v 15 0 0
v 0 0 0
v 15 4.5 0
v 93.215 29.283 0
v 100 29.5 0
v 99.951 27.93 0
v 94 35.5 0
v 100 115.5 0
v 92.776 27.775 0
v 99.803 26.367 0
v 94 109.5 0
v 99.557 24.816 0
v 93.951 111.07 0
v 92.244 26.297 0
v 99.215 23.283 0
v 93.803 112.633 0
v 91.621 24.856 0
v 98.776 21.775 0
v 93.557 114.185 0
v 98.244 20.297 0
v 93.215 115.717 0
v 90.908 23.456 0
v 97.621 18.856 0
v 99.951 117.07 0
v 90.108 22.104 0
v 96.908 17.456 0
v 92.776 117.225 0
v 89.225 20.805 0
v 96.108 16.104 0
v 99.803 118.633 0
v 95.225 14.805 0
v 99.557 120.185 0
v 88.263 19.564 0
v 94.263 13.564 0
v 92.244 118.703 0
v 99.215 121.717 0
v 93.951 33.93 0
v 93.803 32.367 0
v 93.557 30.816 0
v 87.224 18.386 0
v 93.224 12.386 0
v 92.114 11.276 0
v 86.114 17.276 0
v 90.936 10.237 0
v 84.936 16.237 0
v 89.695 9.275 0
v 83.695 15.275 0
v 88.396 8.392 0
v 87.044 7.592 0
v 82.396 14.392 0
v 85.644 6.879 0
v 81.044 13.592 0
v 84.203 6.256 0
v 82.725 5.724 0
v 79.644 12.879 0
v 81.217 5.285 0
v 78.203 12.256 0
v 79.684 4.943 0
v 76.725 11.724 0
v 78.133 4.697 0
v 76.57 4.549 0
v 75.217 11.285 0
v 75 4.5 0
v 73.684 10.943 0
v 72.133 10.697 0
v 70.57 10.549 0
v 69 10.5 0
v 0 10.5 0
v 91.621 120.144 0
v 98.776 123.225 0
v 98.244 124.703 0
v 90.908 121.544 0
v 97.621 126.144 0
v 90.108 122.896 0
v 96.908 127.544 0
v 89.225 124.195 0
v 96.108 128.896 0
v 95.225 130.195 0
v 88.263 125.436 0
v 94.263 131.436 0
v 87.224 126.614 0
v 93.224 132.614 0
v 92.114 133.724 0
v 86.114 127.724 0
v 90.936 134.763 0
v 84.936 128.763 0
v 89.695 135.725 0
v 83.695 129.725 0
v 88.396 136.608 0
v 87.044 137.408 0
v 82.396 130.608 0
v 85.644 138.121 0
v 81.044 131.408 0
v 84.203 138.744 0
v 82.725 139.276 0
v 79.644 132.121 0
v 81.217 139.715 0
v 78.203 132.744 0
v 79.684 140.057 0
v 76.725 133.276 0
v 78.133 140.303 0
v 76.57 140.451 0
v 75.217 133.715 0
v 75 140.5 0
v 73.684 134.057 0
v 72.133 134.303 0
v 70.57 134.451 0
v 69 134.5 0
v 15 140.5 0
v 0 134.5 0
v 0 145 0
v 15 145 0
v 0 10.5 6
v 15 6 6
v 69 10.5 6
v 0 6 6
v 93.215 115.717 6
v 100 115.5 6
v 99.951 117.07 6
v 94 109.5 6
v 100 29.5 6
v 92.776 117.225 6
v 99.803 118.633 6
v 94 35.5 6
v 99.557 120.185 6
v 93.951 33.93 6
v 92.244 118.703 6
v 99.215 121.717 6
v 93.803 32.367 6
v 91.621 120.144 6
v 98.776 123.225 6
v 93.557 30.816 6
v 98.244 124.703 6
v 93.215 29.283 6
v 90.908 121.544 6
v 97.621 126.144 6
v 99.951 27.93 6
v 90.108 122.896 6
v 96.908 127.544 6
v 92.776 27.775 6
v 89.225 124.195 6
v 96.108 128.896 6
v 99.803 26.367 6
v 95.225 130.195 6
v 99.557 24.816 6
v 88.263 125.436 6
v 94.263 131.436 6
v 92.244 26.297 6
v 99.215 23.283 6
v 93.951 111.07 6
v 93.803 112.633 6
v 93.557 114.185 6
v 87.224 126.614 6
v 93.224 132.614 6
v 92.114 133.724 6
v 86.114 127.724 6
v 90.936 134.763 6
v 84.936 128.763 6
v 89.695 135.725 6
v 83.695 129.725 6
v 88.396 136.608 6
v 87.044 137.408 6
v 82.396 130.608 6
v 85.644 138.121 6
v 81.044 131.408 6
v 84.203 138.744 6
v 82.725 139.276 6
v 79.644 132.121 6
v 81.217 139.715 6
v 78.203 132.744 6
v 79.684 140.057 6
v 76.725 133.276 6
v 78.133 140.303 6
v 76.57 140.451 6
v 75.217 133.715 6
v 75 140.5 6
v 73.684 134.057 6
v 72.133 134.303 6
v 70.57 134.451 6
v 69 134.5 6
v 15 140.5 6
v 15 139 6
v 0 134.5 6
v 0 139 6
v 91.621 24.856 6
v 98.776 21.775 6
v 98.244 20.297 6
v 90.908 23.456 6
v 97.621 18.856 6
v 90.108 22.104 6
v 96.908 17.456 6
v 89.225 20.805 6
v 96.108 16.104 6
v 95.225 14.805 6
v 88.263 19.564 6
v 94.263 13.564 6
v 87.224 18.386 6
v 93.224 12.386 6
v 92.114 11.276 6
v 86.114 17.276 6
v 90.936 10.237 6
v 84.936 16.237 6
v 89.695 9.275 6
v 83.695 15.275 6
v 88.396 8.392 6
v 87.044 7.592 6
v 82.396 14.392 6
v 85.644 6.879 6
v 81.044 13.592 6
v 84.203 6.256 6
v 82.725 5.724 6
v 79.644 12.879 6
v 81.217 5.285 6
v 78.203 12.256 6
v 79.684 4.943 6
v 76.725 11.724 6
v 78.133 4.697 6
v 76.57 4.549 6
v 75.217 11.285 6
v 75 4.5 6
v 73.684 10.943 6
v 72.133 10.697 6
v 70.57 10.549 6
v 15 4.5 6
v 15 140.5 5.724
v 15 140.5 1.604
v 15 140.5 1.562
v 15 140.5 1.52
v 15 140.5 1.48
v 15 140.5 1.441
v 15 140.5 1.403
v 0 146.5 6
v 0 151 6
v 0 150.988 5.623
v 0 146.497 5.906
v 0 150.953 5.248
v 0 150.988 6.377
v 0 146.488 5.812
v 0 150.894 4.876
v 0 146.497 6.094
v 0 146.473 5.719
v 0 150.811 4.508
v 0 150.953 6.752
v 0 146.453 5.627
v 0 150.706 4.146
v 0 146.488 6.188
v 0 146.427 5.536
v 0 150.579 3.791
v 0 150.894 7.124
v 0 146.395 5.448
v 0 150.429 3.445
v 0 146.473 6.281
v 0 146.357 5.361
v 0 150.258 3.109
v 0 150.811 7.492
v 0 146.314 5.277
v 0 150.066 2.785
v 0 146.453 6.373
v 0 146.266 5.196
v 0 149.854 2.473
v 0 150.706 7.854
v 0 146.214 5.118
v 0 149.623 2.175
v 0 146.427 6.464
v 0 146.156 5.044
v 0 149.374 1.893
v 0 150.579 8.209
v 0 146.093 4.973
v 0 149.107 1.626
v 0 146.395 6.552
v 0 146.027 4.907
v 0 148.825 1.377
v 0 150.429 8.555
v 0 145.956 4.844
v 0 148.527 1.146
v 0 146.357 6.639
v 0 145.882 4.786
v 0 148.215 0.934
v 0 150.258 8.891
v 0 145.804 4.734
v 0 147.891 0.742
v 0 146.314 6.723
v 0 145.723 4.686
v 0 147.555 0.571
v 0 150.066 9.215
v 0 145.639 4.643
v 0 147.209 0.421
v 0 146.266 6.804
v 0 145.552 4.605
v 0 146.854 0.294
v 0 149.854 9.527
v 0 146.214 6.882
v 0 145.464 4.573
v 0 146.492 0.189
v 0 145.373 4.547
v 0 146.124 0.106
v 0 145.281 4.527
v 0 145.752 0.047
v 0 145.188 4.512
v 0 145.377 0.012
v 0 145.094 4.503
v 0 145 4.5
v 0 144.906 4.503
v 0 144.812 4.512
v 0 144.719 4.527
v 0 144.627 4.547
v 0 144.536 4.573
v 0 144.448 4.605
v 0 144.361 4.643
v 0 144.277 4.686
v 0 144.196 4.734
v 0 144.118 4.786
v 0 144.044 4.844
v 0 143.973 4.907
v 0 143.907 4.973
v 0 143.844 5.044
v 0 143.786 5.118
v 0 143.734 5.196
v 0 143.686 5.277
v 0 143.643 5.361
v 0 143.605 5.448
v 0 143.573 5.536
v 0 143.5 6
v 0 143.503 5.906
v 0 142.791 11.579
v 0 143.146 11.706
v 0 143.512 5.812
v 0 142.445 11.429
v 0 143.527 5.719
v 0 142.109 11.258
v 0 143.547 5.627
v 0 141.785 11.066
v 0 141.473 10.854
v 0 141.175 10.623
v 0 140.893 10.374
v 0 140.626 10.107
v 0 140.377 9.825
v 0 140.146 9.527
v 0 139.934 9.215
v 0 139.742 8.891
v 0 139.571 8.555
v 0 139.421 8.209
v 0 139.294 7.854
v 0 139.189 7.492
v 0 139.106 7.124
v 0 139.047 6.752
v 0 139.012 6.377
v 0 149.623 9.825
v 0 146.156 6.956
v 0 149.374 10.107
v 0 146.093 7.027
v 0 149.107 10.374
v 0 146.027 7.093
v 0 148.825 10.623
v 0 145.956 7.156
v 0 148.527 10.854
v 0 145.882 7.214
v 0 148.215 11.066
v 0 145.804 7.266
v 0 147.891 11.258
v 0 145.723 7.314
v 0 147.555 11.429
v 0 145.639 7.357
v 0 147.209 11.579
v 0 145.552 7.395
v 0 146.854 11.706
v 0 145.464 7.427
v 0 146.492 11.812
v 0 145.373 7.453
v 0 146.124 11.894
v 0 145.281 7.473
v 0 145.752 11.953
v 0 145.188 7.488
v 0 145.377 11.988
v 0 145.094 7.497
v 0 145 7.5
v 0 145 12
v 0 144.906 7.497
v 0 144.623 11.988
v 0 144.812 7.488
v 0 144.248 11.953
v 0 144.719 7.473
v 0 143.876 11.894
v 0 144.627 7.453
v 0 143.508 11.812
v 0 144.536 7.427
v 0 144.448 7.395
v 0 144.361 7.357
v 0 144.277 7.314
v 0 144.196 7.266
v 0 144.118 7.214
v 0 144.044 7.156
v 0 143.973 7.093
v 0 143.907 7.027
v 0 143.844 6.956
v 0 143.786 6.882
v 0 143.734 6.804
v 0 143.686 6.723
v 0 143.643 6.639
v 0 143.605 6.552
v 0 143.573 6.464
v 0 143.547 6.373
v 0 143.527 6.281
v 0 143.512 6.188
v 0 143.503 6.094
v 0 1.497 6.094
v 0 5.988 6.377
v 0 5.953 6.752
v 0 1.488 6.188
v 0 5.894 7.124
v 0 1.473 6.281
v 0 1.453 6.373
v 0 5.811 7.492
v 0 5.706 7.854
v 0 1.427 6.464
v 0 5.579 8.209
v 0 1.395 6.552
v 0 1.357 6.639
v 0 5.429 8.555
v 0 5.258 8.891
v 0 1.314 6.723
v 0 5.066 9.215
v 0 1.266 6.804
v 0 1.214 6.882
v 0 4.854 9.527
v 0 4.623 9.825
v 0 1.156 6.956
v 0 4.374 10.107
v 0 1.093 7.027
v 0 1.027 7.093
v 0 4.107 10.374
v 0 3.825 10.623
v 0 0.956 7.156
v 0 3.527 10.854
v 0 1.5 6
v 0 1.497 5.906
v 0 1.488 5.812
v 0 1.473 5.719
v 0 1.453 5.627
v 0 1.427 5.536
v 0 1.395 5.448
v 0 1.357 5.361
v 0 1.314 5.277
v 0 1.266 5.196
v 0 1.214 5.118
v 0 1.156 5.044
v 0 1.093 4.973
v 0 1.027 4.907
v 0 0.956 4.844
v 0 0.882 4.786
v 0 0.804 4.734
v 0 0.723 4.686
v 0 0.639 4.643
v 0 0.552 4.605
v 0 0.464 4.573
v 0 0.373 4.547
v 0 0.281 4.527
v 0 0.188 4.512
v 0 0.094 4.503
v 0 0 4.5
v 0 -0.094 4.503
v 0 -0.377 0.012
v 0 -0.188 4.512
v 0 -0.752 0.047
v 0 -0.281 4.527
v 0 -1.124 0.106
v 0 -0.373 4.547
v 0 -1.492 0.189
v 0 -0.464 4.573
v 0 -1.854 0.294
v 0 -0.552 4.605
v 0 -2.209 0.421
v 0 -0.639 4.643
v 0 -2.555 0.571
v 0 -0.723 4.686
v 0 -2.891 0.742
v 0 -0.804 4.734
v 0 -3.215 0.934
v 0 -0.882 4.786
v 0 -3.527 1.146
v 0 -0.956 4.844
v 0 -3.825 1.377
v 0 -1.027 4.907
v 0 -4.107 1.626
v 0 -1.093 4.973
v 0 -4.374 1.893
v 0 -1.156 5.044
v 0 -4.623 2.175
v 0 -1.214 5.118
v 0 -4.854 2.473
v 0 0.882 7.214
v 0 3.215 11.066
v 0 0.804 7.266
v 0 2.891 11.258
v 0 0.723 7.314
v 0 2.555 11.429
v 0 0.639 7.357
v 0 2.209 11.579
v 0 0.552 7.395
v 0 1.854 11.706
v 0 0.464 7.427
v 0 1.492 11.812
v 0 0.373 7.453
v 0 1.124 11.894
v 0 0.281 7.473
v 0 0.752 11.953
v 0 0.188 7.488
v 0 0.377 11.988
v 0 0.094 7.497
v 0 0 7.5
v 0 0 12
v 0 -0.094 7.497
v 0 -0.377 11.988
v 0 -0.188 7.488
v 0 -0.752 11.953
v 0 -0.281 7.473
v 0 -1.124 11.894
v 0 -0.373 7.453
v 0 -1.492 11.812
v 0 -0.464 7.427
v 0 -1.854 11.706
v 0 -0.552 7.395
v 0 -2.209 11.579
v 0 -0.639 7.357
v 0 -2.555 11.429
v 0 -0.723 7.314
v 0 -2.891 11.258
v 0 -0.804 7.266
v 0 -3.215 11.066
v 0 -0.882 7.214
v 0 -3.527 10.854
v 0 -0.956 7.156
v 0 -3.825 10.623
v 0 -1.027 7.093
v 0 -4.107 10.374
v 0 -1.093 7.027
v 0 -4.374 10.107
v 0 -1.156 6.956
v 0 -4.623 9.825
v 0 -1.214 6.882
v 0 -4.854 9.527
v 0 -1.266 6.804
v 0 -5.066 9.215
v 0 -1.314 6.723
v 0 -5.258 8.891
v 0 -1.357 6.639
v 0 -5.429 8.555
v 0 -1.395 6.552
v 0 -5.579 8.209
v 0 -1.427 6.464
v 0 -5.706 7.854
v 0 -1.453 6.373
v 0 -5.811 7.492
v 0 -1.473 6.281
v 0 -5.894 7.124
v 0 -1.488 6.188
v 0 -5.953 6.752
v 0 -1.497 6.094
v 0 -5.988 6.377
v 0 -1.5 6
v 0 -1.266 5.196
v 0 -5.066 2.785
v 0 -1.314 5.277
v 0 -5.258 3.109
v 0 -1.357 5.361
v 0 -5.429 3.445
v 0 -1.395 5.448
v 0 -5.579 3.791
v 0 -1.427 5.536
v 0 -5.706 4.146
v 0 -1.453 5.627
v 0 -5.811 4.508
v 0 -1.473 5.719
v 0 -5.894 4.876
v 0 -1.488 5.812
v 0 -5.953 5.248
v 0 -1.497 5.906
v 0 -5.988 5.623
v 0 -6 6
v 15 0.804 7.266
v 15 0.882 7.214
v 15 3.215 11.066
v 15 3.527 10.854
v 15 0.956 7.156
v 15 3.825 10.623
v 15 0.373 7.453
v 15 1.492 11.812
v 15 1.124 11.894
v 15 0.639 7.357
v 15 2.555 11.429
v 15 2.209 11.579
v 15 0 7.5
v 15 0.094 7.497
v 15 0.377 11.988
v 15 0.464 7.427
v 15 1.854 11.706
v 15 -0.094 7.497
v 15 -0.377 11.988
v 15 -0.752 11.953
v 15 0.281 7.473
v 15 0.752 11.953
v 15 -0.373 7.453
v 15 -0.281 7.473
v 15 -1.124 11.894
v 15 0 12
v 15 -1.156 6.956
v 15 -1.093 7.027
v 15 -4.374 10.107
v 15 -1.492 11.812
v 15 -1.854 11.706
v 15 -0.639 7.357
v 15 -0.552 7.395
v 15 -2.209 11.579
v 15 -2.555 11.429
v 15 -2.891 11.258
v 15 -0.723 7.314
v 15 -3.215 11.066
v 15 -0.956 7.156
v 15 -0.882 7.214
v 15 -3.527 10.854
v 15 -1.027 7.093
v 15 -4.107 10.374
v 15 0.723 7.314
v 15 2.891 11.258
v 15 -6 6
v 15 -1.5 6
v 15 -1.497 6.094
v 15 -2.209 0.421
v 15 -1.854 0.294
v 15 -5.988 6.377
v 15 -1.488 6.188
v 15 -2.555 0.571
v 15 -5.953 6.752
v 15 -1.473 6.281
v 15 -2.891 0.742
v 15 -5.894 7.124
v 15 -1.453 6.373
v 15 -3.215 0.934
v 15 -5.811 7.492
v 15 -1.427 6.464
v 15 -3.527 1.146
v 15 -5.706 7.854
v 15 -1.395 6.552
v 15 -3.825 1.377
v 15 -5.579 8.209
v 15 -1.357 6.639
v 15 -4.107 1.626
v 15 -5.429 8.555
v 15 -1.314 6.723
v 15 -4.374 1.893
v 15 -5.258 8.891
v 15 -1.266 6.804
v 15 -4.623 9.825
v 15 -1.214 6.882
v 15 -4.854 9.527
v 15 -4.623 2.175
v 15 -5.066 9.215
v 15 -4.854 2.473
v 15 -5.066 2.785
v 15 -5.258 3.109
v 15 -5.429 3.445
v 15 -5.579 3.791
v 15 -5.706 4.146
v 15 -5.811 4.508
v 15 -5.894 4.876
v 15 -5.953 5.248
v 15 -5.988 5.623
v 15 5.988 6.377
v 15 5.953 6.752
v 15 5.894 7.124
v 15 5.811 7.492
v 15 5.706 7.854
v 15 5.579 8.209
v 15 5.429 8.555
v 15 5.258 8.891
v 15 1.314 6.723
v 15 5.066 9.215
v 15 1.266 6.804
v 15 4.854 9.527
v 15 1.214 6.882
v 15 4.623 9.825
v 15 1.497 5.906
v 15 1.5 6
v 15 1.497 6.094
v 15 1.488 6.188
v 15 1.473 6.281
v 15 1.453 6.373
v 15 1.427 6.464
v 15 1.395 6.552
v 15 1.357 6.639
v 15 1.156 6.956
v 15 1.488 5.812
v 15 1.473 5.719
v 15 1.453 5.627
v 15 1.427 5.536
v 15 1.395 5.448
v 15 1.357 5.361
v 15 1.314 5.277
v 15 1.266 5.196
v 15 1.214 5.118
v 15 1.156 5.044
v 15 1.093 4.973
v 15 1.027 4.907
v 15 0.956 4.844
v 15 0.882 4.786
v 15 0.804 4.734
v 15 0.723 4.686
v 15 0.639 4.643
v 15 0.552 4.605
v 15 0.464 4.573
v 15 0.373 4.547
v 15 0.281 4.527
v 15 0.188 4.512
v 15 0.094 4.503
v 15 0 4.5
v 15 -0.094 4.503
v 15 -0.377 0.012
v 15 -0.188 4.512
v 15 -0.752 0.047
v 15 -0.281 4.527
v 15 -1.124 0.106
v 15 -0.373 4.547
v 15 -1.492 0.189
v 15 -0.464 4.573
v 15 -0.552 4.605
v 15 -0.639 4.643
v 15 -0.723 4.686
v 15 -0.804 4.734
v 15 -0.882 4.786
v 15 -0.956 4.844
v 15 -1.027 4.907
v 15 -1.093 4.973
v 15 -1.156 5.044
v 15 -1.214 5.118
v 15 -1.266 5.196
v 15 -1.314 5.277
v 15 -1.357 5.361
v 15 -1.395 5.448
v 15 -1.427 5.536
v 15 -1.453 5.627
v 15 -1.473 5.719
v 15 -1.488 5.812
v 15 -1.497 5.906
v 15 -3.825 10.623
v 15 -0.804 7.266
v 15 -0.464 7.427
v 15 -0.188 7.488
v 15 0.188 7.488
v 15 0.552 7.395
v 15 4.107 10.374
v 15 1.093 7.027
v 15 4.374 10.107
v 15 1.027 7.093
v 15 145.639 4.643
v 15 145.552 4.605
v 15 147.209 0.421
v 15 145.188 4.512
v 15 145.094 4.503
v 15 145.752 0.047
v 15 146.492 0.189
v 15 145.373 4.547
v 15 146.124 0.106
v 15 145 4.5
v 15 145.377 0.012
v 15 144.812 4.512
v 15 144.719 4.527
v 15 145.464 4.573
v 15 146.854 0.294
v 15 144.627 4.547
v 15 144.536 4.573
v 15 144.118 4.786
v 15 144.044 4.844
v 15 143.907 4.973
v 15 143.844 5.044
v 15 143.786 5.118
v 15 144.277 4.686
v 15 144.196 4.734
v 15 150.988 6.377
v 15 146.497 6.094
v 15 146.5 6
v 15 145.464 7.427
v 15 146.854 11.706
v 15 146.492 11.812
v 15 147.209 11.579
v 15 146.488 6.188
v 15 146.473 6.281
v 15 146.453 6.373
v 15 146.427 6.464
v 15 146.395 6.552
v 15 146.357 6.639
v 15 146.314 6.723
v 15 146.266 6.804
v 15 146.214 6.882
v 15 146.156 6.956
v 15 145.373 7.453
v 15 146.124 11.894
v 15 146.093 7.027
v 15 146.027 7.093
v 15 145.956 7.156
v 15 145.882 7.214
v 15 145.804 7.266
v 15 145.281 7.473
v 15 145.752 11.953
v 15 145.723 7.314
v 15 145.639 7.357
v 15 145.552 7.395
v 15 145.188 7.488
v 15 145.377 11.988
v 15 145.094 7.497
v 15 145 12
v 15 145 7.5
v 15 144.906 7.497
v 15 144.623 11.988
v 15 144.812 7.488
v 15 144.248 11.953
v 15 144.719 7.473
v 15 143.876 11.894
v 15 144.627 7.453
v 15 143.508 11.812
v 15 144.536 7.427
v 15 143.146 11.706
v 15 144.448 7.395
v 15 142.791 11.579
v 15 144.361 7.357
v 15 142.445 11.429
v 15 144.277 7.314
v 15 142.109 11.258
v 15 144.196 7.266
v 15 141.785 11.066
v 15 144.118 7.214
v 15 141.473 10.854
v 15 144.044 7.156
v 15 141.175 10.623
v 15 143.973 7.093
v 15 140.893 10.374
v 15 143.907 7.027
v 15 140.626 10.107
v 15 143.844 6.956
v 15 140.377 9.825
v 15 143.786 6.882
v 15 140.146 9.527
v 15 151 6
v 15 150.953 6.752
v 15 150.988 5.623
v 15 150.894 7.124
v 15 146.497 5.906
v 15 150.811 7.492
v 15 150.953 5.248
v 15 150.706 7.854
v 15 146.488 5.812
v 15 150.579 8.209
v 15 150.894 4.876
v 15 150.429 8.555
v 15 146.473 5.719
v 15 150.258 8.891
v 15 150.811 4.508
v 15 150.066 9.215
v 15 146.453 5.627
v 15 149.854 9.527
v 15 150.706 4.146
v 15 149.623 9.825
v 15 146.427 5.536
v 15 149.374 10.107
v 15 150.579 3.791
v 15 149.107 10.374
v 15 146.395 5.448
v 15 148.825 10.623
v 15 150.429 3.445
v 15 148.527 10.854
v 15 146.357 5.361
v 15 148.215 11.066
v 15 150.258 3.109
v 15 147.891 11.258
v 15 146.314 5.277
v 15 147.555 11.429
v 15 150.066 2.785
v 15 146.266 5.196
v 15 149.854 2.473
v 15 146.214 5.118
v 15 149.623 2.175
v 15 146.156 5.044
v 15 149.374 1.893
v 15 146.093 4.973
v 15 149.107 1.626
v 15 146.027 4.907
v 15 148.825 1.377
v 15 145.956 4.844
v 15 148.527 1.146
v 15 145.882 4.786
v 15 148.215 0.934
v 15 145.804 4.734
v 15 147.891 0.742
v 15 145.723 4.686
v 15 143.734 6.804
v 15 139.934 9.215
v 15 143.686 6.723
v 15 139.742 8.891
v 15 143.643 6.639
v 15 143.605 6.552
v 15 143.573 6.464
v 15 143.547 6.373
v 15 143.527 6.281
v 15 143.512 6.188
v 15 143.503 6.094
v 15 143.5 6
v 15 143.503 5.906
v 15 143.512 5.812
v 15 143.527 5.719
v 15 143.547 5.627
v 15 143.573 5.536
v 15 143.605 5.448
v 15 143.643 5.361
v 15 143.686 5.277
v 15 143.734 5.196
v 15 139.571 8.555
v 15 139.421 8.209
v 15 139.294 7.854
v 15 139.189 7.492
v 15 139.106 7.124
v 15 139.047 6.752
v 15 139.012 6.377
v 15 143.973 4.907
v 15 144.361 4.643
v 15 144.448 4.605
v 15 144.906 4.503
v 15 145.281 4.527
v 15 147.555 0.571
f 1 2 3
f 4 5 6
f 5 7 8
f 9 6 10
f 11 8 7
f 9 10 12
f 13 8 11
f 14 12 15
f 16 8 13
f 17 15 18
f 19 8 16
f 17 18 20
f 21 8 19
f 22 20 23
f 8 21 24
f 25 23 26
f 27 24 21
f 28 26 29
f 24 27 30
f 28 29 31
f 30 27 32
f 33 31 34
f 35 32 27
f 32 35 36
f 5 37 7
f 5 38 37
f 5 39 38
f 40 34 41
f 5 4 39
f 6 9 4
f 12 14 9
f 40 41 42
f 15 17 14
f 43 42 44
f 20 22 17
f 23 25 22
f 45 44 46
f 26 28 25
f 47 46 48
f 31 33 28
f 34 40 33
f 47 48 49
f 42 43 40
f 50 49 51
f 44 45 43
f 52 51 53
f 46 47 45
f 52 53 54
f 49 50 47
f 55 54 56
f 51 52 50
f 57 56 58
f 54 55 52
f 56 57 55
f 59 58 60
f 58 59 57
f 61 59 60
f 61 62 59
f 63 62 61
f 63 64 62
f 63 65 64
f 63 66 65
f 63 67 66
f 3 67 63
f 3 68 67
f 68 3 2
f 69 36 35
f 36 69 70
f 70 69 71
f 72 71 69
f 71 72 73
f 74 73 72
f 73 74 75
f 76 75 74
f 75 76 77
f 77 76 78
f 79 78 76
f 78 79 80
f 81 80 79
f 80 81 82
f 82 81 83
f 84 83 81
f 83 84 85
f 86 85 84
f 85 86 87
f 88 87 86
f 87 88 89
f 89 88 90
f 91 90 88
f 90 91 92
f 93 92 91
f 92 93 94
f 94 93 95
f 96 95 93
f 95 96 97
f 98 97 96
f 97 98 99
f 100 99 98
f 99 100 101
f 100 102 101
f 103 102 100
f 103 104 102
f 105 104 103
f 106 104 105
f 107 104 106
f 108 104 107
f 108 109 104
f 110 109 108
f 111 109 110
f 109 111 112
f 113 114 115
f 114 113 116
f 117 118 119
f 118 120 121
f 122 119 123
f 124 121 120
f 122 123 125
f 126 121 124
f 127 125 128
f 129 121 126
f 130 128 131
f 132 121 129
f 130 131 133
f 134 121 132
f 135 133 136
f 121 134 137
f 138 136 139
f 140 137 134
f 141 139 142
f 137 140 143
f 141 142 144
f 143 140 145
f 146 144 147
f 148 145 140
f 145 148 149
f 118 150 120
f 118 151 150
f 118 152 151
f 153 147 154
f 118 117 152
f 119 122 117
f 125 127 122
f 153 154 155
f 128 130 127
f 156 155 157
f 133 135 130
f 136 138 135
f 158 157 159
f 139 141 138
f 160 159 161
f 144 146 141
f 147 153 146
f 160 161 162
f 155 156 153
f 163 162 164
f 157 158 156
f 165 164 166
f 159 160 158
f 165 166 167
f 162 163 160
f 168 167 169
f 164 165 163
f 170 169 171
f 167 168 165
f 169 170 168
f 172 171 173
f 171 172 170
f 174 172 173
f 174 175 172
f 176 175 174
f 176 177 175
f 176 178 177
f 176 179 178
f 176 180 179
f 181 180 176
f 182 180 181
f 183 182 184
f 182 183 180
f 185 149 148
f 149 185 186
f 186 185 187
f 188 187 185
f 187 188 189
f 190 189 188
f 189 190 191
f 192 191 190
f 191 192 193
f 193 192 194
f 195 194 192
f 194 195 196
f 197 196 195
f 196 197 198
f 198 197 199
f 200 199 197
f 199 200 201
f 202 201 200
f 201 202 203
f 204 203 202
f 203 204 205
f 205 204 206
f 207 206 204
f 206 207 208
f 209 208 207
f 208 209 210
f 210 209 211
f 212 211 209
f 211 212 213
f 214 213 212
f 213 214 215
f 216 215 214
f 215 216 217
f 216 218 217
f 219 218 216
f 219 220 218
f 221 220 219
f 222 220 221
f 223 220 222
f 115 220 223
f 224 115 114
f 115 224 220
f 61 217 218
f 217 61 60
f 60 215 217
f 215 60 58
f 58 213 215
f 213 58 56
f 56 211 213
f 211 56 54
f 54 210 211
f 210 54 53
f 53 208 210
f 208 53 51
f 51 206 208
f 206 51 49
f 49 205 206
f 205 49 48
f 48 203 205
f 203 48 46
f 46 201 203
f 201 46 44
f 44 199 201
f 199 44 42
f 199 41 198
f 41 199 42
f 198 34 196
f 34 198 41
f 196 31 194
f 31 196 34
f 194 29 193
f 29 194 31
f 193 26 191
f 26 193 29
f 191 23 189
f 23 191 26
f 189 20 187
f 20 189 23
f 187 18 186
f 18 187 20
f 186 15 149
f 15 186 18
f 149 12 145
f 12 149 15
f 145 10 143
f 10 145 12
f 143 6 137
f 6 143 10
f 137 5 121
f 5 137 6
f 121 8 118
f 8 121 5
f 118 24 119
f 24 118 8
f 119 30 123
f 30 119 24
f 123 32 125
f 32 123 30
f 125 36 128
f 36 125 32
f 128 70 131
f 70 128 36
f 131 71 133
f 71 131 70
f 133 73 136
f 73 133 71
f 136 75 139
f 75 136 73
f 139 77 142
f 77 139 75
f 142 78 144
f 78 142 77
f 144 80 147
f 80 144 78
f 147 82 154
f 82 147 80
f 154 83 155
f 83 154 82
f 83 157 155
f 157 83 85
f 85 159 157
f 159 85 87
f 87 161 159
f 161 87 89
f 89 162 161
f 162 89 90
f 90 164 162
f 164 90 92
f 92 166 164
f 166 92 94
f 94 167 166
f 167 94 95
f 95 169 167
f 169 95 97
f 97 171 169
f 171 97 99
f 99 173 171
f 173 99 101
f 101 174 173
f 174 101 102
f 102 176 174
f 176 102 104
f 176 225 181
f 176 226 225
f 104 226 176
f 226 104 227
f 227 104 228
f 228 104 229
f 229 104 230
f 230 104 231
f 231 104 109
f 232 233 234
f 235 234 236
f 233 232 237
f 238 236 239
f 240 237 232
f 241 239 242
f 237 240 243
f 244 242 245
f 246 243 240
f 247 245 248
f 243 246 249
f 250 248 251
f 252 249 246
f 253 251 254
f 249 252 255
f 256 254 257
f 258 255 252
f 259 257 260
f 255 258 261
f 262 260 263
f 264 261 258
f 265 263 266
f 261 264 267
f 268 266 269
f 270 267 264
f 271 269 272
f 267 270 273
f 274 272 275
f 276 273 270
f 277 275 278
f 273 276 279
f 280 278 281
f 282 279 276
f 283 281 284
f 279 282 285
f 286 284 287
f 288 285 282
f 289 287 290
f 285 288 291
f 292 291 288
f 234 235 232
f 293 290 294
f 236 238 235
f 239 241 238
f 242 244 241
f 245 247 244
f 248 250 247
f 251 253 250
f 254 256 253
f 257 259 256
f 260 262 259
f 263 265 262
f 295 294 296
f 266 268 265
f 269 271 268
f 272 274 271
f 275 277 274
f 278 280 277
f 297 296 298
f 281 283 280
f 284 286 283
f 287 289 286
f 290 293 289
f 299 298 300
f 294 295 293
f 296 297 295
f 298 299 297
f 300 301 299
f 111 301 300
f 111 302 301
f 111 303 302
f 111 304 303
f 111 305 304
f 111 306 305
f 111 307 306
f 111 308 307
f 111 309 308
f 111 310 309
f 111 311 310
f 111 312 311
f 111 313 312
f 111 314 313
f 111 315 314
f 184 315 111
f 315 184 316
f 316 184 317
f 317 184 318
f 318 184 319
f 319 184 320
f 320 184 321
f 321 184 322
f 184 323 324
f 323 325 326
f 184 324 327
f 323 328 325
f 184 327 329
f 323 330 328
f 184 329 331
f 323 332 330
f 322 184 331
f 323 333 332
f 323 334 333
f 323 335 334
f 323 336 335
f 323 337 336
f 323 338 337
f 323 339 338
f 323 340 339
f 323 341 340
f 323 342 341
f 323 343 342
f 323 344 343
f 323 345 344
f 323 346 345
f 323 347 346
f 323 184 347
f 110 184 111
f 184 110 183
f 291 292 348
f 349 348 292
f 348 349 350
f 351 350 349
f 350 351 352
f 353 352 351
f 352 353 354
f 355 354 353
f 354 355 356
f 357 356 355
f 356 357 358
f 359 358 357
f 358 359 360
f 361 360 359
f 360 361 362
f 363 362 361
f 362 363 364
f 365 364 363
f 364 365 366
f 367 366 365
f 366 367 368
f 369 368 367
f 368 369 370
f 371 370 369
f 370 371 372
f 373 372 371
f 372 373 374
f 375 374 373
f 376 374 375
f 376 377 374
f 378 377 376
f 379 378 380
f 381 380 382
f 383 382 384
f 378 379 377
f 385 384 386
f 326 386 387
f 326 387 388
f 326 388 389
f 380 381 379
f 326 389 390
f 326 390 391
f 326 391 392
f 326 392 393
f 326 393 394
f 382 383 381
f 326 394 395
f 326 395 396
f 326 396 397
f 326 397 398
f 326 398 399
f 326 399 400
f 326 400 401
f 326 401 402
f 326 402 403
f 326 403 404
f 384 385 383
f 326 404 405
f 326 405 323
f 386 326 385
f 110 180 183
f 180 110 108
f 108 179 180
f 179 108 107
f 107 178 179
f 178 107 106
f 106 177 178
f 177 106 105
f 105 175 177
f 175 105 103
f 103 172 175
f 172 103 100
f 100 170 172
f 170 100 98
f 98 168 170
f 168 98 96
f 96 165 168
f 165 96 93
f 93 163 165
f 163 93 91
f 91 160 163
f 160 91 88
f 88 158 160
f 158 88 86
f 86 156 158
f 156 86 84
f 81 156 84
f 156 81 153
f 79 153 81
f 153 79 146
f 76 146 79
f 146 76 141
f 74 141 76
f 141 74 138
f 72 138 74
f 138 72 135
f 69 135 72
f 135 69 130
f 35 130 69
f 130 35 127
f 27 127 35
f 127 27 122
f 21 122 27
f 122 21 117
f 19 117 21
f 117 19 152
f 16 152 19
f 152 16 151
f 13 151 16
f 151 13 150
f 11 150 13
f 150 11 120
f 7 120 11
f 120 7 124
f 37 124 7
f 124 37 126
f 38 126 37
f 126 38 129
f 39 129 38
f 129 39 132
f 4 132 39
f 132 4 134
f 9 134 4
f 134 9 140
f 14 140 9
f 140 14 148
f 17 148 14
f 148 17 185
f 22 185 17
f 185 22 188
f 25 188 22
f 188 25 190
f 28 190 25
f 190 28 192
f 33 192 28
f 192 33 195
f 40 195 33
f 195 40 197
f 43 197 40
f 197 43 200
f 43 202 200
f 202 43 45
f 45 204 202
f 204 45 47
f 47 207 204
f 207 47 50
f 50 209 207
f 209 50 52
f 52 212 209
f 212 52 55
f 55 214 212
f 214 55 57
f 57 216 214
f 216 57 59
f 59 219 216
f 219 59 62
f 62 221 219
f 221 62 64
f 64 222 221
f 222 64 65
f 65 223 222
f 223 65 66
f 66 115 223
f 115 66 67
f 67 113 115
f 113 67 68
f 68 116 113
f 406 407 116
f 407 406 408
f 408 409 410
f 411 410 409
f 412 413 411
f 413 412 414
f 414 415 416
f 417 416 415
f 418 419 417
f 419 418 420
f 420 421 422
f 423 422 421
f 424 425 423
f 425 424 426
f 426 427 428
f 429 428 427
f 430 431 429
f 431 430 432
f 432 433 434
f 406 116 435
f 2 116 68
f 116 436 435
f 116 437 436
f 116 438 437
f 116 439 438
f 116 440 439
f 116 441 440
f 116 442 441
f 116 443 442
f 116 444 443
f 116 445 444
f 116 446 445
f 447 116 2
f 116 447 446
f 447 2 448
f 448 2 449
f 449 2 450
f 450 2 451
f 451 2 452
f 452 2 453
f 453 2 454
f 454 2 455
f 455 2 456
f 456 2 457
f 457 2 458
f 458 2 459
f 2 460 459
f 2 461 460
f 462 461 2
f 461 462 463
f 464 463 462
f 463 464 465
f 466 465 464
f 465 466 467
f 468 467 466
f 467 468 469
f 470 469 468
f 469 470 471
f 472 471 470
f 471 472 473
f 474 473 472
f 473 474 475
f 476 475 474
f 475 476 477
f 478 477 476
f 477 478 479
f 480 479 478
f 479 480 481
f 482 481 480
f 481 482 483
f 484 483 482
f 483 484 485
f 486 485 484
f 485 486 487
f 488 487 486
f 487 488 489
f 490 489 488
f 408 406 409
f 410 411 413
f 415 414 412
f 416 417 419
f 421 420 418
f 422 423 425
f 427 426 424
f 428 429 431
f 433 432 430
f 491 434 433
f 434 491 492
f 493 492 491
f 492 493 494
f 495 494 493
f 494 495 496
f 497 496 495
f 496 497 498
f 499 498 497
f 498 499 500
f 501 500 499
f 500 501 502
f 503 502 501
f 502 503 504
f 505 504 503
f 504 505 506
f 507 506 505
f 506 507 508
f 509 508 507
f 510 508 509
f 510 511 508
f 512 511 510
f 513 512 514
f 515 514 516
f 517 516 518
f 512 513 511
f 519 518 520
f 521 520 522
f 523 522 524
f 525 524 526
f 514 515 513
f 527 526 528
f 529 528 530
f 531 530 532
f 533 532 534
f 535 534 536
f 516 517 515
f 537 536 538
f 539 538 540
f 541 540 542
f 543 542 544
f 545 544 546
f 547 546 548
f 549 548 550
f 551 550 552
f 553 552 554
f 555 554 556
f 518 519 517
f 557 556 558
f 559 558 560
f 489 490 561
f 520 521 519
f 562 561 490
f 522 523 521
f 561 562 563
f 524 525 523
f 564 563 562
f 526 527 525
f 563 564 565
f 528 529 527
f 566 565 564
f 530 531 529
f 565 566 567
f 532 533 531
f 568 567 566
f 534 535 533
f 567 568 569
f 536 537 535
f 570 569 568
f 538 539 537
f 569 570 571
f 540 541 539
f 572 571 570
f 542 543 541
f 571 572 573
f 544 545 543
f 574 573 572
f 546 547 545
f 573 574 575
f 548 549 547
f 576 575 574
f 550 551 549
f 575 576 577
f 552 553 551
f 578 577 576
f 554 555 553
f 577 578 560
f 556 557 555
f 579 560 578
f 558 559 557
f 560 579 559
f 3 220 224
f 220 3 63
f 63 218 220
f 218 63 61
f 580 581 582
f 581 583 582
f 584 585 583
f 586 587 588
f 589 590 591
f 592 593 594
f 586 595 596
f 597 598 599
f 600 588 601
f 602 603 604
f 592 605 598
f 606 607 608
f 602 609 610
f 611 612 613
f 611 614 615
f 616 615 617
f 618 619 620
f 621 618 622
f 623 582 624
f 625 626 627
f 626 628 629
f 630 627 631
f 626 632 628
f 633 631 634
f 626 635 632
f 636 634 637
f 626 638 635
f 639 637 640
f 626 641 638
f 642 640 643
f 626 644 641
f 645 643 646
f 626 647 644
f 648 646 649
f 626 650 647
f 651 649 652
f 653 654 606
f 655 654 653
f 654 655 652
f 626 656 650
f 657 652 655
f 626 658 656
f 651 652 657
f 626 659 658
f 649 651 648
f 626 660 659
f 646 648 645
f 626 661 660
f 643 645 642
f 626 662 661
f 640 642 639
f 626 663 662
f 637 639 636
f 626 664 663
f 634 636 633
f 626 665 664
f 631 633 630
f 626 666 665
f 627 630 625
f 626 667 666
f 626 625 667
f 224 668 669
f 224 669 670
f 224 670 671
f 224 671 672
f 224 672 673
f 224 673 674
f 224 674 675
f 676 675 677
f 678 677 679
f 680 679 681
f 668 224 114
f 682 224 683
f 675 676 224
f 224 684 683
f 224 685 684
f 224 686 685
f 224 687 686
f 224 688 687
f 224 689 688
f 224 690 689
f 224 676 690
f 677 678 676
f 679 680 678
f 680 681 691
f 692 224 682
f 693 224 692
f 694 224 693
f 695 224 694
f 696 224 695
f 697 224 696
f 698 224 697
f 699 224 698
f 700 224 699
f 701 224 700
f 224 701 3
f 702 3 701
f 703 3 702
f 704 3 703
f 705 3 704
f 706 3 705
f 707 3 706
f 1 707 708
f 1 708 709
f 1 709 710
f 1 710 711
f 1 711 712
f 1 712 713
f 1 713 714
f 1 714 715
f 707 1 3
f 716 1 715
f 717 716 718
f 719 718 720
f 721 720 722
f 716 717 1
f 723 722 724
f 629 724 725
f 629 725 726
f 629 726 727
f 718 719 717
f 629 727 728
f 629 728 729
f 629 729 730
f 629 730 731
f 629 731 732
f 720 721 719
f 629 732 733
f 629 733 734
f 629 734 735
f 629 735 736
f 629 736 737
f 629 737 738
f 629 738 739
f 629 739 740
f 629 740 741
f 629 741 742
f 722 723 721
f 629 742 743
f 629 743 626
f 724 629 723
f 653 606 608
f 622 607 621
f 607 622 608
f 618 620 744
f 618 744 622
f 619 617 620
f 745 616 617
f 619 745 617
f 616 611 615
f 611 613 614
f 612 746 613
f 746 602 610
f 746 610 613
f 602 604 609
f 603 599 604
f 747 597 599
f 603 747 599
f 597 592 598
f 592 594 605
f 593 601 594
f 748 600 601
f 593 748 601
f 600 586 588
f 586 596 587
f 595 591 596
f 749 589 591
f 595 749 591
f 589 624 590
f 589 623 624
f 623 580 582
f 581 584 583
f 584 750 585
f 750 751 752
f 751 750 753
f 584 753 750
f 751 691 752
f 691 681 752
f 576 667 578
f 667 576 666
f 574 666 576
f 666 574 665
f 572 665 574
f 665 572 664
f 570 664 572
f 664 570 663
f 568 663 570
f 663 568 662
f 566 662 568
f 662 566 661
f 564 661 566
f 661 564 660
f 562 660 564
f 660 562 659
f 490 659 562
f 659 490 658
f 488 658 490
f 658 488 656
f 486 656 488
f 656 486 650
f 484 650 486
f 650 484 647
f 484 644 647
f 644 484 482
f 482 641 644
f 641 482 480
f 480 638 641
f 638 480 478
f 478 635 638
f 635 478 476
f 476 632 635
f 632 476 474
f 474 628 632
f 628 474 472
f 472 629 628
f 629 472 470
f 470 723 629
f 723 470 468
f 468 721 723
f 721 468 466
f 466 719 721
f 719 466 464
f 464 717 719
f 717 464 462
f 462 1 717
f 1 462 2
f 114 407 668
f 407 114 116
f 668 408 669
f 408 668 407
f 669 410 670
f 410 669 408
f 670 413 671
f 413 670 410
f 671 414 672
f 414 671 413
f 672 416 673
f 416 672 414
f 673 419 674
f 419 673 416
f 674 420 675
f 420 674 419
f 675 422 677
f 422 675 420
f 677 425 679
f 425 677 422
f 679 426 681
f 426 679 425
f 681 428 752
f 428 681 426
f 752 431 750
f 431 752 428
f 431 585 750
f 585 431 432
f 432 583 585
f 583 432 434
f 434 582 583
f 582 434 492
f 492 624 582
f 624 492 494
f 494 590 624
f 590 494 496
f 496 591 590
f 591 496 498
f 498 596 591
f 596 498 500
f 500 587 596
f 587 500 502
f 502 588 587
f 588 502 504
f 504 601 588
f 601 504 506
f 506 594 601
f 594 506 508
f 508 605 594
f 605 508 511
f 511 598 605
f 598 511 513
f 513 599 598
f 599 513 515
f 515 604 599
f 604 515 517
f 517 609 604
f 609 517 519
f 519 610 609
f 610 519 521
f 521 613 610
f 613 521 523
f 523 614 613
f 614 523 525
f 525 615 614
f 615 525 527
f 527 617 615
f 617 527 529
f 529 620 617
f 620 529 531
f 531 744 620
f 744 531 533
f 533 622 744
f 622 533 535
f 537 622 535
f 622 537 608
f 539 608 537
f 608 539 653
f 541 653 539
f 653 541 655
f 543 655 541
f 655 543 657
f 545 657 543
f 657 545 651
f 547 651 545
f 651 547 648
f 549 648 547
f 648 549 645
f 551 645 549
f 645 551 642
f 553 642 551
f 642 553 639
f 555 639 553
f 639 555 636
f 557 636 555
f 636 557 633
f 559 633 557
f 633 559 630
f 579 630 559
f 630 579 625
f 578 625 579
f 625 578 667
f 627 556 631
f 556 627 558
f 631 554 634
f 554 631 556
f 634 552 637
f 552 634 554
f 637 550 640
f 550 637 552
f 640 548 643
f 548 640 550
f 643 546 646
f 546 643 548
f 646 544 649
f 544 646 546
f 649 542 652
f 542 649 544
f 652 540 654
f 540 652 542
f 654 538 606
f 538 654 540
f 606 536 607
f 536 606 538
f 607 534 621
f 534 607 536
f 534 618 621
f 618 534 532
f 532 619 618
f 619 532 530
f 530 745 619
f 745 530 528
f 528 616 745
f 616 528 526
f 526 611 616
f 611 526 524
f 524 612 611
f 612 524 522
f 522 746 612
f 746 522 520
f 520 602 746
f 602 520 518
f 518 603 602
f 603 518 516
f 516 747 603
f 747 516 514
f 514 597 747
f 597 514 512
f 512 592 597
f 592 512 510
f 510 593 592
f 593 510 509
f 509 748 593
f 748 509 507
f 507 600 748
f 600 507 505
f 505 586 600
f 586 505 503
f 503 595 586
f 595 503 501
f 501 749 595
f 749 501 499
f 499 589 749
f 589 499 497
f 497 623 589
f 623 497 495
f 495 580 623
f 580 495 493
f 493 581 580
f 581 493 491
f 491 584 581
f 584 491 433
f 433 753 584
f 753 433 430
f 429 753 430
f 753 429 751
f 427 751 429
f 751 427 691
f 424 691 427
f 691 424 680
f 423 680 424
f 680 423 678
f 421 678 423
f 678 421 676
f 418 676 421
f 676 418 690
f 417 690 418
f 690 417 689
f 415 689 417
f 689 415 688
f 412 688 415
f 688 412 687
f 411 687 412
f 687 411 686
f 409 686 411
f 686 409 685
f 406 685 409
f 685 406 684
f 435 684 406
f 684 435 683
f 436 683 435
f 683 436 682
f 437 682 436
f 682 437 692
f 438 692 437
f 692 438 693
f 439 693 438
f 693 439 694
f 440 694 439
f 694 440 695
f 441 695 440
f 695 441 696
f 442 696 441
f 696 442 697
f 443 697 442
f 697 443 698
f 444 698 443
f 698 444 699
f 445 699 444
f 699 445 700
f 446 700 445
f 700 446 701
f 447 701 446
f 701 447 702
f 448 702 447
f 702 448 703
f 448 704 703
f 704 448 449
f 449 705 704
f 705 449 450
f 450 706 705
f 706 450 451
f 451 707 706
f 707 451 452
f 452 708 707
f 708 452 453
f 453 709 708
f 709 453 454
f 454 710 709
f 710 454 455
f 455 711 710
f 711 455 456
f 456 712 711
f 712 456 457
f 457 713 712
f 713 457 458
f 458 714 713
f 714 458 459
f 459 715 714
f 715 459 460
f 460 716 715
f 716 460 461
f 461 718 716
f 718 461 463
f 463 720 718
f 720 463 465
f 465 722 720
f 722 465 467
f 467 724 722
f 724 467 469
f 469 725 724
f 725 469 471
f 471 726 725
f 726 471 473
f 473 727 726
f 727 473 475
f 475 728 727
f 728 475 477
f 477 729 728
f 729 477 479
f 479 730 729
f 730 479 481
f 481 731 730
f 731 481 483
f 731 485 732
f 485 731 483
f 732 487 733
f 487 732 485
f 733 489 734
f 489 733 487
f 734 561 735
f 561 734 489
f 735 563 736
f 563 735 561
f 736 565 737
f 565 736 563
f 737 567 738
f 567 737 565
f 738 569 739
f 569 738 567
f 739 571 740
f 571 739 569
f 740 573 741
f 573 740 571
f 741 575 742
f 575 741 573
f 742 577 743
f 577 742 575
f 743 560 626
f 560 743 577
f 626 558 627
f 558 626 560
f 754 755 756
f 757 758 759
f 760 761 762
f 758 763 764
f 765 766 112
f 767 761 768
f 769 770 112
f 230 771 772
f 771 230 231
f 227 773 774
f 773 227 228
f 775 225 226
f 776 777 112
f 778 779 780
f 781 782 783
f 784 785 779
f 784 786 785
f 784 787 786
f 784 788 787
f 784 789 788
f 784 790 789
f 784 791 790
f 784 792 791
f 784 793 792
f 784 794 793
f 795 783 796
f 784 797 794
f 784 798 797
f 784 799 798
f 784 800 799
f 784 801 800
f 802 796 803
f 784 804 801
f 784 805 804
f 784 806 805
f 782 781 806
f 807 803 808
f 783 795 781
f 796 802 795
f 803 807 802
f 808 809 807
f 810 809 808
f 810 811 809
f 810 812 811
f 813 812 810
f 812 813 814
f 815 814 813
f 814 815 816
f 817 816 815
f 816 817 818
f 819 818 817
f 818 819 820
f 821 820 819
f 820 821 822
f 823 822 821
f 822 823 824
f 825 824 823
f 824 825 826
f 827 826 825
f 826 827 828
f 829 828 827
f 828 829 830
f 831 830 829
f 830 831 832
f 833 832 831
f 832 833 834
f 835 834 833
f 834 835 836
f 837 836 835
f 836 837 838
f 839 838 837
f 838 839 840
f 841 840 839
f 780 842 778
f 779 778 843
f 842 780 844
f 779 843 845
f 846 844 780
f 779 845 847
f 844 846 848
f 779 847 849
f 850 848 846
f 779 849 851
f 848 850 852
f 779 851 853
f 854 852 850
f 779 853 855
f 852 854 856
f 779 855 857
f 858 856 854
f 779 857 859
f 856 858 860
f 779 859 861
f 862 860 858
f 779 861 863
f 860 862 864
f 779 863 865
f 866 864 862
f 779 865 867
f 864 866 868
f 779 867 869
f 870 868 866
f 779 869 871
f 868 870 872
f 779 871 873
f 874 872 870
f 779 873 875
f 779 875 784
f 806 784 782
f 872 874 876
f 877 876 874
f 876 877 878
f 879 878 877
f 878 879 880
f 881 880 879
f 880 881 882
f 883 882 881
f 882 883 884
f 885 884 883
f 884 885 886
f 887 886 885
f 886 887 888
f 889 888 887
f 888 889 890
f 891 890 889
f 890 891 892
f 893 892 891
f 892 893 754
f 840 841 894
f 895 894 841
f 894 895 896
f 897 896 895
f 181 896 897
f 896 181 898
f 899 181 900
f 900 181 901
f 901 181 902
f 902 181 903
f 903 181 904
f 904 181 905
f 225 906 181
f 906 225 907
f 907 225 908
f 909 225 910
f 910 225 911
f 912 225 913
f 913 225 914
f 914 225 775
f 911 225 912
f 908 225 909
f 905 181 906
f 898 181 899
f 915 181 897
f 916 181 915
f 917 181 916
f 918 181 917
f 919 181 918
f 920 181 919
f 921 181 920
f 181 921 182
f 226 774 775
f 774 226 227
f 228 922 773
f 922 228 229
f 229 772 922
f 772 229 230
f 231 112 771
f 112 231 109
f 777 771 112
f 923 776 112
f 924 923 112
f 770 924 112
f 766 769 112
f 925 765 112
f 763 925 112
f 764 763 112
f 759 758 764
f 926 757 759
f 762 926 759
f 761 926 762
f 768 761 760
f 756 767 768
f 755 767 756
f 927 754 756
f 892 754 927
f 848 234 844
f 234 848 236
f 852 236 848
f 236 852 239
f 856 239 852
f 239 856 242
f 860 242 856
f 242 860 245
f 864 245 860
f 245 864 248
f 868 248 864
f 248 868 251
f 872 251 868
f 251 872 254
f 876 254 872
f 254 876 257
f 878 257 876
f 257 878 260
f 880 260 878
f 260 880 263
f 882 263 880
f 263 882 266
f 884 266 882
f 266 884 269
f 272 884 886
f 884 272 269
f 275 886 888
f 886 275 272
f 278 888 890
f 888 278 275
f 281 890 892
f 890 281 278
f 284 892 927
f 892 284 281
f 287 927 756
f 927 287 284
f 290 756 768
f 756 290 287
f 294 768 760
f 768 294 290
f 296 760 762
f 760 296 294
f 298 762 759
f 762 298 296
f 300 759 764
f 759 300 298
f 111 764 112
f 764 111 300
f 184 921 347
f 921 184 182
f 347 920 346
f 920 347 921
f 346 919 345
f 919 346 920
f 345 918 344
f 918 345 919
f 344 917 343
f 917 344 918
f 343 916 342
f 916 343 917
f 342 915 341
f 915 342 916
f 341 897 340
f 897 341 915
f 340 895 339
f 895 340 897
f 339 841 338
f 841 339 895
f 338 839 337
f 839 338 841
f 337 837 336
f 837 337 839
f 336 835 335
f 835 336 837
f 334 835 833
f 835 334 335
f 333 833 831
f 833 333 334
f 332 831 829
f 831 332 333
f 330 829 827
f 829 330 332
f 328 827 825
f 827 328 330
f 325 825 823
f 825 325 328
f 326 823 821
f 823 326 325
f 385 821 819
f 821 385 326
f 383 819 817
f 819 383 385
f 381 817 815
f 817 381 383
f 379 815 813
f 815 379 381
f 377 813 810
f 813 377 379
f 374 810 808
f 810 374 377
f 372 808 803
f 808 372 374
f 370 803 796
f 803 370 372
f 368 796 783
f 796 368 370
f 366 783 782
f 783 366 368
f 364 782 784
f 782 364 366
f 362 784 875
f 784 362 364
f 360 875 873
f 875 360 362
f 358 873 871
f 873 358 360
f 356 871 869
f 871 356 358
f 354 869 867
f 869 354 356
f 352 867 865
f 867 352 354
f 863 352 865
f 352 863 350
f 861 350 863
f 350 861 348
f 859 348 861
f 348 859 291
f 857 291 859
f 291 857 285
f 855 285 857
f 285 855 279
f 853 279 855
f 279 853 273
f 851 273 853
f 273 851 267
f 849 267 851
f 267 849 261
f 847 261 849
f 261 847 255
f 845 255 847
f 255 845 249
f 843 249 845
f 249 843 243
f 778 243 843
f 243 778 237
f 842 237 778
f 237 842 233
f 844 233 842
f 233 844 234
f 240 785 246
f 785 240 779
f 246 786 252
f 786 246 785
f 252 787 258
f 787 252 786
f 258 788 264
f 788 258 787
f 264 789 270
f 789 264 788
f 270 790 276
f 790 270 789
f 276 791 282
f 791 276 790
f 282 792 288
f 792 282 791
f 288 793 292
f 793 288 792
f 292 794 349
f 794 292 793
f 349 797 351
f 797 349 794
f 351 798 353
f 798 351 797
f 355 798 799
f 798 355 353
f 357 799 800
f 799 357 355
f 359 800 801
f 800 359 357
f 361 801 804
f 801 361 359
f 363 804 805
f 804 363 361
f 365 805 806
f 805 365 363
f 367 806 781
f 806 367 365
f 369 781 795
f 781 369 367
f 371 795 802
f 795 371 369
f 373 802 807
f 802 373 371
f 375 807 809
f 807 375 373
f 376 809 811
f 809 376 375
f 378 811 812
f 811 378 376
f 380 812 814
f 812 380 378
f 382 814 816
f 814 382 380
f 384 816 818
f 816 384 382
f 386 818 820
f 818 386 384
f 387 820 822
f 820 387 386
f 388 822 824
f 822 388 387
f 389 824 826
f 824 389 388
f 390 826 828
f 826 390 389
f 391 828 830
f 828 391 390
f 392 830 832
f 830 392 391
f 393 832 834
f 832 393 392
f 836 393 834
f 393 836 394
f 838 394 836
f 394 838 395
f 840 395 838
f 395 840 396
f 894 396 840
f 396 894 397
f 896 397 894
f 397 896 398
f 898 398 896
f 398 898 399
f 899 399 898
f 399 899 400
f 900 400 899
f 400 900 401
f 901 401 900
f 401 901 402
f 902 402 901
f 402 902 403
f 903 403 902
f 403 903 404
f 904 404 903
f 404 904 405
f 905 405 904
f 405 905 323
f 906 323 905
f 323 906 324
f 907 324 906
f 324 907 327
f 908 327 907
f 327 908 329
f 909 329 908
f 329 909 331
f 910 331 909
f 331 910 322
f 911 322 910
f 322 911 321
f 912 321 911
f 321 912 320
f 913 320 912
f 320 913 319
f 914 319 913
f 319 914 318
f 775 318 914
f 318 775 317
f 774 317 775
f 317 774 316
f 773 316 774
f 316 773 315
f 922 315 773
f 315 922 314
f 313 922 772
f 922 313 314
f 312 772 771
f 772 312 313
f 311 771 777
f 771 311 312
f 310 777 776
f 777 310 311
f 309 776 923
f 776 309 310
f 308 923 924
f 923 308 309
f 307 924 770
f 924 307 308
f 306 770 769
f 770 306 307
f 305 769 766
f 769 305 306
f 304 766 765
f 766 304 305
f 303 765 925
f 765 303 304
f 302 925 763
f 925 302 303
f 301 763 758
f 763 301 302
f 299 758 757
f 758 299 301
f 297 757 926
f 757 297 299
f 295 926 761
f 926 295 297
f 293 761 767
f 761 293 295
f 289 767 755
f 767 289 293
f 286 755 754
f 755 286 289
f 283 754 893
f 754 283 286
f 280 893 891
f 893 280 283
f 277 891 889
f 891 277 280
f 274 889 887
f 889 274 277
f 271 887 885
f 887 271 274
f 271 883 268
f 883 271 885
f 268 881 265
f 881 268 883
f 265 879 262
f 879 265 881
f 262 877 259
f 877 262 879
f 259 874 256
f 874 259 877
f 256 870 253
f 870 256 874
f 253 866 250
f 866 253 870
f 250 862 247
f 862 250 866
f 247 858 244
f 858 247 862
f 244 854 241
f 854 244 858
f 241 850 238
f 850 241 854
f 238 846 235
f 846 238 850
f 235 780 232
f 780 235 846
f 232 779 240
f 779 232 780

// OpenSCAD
$fn = 100;

height = 100;
delta = 4.5;
distance = 145;
strength = 6;
width = distance - 2*delta;
socket_height = 15;
outer_radius = 6;
inner_radius = 1.5;
smooth_radius = 25;

translate([0, delta, 0]) skid();
translate([0, 0, outer_radius]) rotate([0, 90, 0]) socket();
translate([socket_height, distance, outer_radius]) rotate([0, 90, 180]) socket();

module skid(){
    linear_extrude(height = strength){
        intersection(){
            square([height, width]);
            difference(){
                translate([0, smooth_radius])
                    minkowski(){
                        square([height - smooth_radius, width - 2*smooth_radius]);
                        circle(smooth_radius);
                    }
                translate([0, smooth_radius + strength])
                    minkowski(){
                        square([height - strength - smooth_radius, width - 2*strength - 2*smooth_radius]);
                        circle(smooth_radius);
                    }
            }
        }
    }
}

module socket(){
    linear_extrude(height = socket_height){
        difference(){
            union(){
                circle(outer_radius);
                square([outer_radius, outer_radius]);
            }
            circle(inner_radius);
        }
    }
}
